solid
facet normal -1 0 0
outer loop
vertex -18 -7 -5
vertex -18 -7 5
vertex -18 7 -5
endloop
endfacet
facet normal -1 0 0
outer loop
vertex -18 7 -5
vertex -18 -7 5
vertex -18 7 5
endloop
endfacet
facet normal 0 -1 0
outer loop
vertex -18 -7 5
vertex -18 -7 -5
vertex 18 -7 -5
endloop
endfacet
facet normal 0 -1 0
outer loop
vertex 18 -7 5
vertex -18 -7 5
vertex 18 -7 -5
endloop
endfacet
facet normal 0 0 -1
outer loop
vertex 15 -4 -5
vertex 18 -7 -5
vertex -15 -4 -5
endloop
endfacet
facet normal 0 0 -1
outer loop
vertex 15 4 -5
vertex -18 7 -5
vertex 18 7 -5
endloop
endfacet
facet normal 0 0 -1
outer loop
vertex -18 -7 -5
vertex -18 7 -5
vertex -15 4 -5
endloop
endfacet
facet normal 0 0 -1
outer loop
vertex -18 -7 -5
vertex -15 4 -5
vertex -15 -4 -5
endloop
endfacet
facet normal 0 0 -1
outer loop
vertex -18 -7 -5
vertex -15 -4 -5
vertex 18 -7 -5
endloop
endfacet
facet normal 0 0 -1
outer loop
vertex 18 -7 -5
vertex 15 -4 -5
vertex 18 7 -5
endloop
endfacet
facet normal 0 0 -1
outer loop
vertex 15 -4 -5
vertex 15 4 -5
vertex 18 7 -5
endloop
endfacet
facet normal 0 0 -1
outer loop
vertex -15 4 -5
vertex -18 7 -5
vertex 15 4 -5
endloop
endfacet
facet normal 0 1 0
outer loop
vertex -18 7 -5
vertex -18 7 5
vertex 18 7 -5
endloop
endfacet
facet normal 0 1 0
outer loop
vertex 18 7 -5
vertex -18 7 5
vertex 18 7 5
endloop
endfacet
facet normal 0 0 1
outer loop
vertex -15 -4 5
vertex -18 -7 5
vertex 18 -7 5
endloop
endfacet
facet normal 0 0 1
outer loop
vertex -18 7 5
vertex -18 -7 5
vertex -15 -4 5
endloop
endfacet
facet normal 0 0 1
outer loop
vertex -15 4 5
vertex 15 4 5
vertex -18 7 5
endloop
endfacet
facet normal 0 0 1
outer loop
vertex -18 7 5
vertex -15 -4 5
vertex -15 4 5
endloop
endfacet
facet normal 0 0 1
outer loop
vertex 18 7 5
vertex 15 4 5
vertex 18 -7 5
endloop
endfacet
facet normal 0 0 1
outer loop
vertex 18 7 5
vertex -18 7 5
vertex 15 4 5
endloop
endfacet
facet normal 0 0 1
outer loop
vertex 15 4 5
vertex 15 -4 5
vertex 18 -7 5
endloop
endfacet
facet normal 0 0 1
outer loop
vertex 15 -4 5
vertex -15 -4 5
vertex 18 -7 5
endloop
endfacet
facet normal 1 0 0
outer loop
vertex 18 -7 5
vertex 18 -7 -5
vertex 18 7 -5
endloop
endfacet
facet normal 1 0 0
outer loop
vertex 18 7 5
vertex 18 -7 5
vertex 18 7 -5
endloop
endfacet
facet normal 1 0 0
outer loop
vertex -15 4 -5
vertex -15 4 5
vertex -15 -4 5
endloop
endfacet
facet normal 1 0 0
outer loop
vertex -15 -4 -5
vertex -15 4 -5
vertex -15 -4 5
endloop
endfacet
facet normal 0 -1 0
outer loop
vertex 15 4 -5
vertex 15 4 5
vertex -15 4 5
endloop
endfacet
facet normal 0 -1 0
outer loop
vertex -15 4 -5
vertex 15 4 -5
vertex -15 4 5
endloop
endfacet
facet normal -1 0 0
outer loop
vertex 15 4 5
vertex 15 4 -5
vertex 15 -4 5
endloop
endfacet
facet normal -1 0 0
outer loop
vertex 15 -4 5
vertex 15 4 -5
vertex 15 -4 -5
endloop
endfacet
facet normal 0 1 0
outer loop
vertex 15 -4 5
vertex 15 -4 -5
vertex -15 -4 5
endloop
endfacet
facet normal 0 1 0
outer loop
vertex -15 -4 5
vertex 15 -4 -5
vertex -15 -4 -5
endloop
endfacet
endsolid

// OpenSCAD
shield();

module shield()
{
	difference()
	{
		cube([36,14,10], center=true);
		cube([30,8,15], center=true);
	}
}
